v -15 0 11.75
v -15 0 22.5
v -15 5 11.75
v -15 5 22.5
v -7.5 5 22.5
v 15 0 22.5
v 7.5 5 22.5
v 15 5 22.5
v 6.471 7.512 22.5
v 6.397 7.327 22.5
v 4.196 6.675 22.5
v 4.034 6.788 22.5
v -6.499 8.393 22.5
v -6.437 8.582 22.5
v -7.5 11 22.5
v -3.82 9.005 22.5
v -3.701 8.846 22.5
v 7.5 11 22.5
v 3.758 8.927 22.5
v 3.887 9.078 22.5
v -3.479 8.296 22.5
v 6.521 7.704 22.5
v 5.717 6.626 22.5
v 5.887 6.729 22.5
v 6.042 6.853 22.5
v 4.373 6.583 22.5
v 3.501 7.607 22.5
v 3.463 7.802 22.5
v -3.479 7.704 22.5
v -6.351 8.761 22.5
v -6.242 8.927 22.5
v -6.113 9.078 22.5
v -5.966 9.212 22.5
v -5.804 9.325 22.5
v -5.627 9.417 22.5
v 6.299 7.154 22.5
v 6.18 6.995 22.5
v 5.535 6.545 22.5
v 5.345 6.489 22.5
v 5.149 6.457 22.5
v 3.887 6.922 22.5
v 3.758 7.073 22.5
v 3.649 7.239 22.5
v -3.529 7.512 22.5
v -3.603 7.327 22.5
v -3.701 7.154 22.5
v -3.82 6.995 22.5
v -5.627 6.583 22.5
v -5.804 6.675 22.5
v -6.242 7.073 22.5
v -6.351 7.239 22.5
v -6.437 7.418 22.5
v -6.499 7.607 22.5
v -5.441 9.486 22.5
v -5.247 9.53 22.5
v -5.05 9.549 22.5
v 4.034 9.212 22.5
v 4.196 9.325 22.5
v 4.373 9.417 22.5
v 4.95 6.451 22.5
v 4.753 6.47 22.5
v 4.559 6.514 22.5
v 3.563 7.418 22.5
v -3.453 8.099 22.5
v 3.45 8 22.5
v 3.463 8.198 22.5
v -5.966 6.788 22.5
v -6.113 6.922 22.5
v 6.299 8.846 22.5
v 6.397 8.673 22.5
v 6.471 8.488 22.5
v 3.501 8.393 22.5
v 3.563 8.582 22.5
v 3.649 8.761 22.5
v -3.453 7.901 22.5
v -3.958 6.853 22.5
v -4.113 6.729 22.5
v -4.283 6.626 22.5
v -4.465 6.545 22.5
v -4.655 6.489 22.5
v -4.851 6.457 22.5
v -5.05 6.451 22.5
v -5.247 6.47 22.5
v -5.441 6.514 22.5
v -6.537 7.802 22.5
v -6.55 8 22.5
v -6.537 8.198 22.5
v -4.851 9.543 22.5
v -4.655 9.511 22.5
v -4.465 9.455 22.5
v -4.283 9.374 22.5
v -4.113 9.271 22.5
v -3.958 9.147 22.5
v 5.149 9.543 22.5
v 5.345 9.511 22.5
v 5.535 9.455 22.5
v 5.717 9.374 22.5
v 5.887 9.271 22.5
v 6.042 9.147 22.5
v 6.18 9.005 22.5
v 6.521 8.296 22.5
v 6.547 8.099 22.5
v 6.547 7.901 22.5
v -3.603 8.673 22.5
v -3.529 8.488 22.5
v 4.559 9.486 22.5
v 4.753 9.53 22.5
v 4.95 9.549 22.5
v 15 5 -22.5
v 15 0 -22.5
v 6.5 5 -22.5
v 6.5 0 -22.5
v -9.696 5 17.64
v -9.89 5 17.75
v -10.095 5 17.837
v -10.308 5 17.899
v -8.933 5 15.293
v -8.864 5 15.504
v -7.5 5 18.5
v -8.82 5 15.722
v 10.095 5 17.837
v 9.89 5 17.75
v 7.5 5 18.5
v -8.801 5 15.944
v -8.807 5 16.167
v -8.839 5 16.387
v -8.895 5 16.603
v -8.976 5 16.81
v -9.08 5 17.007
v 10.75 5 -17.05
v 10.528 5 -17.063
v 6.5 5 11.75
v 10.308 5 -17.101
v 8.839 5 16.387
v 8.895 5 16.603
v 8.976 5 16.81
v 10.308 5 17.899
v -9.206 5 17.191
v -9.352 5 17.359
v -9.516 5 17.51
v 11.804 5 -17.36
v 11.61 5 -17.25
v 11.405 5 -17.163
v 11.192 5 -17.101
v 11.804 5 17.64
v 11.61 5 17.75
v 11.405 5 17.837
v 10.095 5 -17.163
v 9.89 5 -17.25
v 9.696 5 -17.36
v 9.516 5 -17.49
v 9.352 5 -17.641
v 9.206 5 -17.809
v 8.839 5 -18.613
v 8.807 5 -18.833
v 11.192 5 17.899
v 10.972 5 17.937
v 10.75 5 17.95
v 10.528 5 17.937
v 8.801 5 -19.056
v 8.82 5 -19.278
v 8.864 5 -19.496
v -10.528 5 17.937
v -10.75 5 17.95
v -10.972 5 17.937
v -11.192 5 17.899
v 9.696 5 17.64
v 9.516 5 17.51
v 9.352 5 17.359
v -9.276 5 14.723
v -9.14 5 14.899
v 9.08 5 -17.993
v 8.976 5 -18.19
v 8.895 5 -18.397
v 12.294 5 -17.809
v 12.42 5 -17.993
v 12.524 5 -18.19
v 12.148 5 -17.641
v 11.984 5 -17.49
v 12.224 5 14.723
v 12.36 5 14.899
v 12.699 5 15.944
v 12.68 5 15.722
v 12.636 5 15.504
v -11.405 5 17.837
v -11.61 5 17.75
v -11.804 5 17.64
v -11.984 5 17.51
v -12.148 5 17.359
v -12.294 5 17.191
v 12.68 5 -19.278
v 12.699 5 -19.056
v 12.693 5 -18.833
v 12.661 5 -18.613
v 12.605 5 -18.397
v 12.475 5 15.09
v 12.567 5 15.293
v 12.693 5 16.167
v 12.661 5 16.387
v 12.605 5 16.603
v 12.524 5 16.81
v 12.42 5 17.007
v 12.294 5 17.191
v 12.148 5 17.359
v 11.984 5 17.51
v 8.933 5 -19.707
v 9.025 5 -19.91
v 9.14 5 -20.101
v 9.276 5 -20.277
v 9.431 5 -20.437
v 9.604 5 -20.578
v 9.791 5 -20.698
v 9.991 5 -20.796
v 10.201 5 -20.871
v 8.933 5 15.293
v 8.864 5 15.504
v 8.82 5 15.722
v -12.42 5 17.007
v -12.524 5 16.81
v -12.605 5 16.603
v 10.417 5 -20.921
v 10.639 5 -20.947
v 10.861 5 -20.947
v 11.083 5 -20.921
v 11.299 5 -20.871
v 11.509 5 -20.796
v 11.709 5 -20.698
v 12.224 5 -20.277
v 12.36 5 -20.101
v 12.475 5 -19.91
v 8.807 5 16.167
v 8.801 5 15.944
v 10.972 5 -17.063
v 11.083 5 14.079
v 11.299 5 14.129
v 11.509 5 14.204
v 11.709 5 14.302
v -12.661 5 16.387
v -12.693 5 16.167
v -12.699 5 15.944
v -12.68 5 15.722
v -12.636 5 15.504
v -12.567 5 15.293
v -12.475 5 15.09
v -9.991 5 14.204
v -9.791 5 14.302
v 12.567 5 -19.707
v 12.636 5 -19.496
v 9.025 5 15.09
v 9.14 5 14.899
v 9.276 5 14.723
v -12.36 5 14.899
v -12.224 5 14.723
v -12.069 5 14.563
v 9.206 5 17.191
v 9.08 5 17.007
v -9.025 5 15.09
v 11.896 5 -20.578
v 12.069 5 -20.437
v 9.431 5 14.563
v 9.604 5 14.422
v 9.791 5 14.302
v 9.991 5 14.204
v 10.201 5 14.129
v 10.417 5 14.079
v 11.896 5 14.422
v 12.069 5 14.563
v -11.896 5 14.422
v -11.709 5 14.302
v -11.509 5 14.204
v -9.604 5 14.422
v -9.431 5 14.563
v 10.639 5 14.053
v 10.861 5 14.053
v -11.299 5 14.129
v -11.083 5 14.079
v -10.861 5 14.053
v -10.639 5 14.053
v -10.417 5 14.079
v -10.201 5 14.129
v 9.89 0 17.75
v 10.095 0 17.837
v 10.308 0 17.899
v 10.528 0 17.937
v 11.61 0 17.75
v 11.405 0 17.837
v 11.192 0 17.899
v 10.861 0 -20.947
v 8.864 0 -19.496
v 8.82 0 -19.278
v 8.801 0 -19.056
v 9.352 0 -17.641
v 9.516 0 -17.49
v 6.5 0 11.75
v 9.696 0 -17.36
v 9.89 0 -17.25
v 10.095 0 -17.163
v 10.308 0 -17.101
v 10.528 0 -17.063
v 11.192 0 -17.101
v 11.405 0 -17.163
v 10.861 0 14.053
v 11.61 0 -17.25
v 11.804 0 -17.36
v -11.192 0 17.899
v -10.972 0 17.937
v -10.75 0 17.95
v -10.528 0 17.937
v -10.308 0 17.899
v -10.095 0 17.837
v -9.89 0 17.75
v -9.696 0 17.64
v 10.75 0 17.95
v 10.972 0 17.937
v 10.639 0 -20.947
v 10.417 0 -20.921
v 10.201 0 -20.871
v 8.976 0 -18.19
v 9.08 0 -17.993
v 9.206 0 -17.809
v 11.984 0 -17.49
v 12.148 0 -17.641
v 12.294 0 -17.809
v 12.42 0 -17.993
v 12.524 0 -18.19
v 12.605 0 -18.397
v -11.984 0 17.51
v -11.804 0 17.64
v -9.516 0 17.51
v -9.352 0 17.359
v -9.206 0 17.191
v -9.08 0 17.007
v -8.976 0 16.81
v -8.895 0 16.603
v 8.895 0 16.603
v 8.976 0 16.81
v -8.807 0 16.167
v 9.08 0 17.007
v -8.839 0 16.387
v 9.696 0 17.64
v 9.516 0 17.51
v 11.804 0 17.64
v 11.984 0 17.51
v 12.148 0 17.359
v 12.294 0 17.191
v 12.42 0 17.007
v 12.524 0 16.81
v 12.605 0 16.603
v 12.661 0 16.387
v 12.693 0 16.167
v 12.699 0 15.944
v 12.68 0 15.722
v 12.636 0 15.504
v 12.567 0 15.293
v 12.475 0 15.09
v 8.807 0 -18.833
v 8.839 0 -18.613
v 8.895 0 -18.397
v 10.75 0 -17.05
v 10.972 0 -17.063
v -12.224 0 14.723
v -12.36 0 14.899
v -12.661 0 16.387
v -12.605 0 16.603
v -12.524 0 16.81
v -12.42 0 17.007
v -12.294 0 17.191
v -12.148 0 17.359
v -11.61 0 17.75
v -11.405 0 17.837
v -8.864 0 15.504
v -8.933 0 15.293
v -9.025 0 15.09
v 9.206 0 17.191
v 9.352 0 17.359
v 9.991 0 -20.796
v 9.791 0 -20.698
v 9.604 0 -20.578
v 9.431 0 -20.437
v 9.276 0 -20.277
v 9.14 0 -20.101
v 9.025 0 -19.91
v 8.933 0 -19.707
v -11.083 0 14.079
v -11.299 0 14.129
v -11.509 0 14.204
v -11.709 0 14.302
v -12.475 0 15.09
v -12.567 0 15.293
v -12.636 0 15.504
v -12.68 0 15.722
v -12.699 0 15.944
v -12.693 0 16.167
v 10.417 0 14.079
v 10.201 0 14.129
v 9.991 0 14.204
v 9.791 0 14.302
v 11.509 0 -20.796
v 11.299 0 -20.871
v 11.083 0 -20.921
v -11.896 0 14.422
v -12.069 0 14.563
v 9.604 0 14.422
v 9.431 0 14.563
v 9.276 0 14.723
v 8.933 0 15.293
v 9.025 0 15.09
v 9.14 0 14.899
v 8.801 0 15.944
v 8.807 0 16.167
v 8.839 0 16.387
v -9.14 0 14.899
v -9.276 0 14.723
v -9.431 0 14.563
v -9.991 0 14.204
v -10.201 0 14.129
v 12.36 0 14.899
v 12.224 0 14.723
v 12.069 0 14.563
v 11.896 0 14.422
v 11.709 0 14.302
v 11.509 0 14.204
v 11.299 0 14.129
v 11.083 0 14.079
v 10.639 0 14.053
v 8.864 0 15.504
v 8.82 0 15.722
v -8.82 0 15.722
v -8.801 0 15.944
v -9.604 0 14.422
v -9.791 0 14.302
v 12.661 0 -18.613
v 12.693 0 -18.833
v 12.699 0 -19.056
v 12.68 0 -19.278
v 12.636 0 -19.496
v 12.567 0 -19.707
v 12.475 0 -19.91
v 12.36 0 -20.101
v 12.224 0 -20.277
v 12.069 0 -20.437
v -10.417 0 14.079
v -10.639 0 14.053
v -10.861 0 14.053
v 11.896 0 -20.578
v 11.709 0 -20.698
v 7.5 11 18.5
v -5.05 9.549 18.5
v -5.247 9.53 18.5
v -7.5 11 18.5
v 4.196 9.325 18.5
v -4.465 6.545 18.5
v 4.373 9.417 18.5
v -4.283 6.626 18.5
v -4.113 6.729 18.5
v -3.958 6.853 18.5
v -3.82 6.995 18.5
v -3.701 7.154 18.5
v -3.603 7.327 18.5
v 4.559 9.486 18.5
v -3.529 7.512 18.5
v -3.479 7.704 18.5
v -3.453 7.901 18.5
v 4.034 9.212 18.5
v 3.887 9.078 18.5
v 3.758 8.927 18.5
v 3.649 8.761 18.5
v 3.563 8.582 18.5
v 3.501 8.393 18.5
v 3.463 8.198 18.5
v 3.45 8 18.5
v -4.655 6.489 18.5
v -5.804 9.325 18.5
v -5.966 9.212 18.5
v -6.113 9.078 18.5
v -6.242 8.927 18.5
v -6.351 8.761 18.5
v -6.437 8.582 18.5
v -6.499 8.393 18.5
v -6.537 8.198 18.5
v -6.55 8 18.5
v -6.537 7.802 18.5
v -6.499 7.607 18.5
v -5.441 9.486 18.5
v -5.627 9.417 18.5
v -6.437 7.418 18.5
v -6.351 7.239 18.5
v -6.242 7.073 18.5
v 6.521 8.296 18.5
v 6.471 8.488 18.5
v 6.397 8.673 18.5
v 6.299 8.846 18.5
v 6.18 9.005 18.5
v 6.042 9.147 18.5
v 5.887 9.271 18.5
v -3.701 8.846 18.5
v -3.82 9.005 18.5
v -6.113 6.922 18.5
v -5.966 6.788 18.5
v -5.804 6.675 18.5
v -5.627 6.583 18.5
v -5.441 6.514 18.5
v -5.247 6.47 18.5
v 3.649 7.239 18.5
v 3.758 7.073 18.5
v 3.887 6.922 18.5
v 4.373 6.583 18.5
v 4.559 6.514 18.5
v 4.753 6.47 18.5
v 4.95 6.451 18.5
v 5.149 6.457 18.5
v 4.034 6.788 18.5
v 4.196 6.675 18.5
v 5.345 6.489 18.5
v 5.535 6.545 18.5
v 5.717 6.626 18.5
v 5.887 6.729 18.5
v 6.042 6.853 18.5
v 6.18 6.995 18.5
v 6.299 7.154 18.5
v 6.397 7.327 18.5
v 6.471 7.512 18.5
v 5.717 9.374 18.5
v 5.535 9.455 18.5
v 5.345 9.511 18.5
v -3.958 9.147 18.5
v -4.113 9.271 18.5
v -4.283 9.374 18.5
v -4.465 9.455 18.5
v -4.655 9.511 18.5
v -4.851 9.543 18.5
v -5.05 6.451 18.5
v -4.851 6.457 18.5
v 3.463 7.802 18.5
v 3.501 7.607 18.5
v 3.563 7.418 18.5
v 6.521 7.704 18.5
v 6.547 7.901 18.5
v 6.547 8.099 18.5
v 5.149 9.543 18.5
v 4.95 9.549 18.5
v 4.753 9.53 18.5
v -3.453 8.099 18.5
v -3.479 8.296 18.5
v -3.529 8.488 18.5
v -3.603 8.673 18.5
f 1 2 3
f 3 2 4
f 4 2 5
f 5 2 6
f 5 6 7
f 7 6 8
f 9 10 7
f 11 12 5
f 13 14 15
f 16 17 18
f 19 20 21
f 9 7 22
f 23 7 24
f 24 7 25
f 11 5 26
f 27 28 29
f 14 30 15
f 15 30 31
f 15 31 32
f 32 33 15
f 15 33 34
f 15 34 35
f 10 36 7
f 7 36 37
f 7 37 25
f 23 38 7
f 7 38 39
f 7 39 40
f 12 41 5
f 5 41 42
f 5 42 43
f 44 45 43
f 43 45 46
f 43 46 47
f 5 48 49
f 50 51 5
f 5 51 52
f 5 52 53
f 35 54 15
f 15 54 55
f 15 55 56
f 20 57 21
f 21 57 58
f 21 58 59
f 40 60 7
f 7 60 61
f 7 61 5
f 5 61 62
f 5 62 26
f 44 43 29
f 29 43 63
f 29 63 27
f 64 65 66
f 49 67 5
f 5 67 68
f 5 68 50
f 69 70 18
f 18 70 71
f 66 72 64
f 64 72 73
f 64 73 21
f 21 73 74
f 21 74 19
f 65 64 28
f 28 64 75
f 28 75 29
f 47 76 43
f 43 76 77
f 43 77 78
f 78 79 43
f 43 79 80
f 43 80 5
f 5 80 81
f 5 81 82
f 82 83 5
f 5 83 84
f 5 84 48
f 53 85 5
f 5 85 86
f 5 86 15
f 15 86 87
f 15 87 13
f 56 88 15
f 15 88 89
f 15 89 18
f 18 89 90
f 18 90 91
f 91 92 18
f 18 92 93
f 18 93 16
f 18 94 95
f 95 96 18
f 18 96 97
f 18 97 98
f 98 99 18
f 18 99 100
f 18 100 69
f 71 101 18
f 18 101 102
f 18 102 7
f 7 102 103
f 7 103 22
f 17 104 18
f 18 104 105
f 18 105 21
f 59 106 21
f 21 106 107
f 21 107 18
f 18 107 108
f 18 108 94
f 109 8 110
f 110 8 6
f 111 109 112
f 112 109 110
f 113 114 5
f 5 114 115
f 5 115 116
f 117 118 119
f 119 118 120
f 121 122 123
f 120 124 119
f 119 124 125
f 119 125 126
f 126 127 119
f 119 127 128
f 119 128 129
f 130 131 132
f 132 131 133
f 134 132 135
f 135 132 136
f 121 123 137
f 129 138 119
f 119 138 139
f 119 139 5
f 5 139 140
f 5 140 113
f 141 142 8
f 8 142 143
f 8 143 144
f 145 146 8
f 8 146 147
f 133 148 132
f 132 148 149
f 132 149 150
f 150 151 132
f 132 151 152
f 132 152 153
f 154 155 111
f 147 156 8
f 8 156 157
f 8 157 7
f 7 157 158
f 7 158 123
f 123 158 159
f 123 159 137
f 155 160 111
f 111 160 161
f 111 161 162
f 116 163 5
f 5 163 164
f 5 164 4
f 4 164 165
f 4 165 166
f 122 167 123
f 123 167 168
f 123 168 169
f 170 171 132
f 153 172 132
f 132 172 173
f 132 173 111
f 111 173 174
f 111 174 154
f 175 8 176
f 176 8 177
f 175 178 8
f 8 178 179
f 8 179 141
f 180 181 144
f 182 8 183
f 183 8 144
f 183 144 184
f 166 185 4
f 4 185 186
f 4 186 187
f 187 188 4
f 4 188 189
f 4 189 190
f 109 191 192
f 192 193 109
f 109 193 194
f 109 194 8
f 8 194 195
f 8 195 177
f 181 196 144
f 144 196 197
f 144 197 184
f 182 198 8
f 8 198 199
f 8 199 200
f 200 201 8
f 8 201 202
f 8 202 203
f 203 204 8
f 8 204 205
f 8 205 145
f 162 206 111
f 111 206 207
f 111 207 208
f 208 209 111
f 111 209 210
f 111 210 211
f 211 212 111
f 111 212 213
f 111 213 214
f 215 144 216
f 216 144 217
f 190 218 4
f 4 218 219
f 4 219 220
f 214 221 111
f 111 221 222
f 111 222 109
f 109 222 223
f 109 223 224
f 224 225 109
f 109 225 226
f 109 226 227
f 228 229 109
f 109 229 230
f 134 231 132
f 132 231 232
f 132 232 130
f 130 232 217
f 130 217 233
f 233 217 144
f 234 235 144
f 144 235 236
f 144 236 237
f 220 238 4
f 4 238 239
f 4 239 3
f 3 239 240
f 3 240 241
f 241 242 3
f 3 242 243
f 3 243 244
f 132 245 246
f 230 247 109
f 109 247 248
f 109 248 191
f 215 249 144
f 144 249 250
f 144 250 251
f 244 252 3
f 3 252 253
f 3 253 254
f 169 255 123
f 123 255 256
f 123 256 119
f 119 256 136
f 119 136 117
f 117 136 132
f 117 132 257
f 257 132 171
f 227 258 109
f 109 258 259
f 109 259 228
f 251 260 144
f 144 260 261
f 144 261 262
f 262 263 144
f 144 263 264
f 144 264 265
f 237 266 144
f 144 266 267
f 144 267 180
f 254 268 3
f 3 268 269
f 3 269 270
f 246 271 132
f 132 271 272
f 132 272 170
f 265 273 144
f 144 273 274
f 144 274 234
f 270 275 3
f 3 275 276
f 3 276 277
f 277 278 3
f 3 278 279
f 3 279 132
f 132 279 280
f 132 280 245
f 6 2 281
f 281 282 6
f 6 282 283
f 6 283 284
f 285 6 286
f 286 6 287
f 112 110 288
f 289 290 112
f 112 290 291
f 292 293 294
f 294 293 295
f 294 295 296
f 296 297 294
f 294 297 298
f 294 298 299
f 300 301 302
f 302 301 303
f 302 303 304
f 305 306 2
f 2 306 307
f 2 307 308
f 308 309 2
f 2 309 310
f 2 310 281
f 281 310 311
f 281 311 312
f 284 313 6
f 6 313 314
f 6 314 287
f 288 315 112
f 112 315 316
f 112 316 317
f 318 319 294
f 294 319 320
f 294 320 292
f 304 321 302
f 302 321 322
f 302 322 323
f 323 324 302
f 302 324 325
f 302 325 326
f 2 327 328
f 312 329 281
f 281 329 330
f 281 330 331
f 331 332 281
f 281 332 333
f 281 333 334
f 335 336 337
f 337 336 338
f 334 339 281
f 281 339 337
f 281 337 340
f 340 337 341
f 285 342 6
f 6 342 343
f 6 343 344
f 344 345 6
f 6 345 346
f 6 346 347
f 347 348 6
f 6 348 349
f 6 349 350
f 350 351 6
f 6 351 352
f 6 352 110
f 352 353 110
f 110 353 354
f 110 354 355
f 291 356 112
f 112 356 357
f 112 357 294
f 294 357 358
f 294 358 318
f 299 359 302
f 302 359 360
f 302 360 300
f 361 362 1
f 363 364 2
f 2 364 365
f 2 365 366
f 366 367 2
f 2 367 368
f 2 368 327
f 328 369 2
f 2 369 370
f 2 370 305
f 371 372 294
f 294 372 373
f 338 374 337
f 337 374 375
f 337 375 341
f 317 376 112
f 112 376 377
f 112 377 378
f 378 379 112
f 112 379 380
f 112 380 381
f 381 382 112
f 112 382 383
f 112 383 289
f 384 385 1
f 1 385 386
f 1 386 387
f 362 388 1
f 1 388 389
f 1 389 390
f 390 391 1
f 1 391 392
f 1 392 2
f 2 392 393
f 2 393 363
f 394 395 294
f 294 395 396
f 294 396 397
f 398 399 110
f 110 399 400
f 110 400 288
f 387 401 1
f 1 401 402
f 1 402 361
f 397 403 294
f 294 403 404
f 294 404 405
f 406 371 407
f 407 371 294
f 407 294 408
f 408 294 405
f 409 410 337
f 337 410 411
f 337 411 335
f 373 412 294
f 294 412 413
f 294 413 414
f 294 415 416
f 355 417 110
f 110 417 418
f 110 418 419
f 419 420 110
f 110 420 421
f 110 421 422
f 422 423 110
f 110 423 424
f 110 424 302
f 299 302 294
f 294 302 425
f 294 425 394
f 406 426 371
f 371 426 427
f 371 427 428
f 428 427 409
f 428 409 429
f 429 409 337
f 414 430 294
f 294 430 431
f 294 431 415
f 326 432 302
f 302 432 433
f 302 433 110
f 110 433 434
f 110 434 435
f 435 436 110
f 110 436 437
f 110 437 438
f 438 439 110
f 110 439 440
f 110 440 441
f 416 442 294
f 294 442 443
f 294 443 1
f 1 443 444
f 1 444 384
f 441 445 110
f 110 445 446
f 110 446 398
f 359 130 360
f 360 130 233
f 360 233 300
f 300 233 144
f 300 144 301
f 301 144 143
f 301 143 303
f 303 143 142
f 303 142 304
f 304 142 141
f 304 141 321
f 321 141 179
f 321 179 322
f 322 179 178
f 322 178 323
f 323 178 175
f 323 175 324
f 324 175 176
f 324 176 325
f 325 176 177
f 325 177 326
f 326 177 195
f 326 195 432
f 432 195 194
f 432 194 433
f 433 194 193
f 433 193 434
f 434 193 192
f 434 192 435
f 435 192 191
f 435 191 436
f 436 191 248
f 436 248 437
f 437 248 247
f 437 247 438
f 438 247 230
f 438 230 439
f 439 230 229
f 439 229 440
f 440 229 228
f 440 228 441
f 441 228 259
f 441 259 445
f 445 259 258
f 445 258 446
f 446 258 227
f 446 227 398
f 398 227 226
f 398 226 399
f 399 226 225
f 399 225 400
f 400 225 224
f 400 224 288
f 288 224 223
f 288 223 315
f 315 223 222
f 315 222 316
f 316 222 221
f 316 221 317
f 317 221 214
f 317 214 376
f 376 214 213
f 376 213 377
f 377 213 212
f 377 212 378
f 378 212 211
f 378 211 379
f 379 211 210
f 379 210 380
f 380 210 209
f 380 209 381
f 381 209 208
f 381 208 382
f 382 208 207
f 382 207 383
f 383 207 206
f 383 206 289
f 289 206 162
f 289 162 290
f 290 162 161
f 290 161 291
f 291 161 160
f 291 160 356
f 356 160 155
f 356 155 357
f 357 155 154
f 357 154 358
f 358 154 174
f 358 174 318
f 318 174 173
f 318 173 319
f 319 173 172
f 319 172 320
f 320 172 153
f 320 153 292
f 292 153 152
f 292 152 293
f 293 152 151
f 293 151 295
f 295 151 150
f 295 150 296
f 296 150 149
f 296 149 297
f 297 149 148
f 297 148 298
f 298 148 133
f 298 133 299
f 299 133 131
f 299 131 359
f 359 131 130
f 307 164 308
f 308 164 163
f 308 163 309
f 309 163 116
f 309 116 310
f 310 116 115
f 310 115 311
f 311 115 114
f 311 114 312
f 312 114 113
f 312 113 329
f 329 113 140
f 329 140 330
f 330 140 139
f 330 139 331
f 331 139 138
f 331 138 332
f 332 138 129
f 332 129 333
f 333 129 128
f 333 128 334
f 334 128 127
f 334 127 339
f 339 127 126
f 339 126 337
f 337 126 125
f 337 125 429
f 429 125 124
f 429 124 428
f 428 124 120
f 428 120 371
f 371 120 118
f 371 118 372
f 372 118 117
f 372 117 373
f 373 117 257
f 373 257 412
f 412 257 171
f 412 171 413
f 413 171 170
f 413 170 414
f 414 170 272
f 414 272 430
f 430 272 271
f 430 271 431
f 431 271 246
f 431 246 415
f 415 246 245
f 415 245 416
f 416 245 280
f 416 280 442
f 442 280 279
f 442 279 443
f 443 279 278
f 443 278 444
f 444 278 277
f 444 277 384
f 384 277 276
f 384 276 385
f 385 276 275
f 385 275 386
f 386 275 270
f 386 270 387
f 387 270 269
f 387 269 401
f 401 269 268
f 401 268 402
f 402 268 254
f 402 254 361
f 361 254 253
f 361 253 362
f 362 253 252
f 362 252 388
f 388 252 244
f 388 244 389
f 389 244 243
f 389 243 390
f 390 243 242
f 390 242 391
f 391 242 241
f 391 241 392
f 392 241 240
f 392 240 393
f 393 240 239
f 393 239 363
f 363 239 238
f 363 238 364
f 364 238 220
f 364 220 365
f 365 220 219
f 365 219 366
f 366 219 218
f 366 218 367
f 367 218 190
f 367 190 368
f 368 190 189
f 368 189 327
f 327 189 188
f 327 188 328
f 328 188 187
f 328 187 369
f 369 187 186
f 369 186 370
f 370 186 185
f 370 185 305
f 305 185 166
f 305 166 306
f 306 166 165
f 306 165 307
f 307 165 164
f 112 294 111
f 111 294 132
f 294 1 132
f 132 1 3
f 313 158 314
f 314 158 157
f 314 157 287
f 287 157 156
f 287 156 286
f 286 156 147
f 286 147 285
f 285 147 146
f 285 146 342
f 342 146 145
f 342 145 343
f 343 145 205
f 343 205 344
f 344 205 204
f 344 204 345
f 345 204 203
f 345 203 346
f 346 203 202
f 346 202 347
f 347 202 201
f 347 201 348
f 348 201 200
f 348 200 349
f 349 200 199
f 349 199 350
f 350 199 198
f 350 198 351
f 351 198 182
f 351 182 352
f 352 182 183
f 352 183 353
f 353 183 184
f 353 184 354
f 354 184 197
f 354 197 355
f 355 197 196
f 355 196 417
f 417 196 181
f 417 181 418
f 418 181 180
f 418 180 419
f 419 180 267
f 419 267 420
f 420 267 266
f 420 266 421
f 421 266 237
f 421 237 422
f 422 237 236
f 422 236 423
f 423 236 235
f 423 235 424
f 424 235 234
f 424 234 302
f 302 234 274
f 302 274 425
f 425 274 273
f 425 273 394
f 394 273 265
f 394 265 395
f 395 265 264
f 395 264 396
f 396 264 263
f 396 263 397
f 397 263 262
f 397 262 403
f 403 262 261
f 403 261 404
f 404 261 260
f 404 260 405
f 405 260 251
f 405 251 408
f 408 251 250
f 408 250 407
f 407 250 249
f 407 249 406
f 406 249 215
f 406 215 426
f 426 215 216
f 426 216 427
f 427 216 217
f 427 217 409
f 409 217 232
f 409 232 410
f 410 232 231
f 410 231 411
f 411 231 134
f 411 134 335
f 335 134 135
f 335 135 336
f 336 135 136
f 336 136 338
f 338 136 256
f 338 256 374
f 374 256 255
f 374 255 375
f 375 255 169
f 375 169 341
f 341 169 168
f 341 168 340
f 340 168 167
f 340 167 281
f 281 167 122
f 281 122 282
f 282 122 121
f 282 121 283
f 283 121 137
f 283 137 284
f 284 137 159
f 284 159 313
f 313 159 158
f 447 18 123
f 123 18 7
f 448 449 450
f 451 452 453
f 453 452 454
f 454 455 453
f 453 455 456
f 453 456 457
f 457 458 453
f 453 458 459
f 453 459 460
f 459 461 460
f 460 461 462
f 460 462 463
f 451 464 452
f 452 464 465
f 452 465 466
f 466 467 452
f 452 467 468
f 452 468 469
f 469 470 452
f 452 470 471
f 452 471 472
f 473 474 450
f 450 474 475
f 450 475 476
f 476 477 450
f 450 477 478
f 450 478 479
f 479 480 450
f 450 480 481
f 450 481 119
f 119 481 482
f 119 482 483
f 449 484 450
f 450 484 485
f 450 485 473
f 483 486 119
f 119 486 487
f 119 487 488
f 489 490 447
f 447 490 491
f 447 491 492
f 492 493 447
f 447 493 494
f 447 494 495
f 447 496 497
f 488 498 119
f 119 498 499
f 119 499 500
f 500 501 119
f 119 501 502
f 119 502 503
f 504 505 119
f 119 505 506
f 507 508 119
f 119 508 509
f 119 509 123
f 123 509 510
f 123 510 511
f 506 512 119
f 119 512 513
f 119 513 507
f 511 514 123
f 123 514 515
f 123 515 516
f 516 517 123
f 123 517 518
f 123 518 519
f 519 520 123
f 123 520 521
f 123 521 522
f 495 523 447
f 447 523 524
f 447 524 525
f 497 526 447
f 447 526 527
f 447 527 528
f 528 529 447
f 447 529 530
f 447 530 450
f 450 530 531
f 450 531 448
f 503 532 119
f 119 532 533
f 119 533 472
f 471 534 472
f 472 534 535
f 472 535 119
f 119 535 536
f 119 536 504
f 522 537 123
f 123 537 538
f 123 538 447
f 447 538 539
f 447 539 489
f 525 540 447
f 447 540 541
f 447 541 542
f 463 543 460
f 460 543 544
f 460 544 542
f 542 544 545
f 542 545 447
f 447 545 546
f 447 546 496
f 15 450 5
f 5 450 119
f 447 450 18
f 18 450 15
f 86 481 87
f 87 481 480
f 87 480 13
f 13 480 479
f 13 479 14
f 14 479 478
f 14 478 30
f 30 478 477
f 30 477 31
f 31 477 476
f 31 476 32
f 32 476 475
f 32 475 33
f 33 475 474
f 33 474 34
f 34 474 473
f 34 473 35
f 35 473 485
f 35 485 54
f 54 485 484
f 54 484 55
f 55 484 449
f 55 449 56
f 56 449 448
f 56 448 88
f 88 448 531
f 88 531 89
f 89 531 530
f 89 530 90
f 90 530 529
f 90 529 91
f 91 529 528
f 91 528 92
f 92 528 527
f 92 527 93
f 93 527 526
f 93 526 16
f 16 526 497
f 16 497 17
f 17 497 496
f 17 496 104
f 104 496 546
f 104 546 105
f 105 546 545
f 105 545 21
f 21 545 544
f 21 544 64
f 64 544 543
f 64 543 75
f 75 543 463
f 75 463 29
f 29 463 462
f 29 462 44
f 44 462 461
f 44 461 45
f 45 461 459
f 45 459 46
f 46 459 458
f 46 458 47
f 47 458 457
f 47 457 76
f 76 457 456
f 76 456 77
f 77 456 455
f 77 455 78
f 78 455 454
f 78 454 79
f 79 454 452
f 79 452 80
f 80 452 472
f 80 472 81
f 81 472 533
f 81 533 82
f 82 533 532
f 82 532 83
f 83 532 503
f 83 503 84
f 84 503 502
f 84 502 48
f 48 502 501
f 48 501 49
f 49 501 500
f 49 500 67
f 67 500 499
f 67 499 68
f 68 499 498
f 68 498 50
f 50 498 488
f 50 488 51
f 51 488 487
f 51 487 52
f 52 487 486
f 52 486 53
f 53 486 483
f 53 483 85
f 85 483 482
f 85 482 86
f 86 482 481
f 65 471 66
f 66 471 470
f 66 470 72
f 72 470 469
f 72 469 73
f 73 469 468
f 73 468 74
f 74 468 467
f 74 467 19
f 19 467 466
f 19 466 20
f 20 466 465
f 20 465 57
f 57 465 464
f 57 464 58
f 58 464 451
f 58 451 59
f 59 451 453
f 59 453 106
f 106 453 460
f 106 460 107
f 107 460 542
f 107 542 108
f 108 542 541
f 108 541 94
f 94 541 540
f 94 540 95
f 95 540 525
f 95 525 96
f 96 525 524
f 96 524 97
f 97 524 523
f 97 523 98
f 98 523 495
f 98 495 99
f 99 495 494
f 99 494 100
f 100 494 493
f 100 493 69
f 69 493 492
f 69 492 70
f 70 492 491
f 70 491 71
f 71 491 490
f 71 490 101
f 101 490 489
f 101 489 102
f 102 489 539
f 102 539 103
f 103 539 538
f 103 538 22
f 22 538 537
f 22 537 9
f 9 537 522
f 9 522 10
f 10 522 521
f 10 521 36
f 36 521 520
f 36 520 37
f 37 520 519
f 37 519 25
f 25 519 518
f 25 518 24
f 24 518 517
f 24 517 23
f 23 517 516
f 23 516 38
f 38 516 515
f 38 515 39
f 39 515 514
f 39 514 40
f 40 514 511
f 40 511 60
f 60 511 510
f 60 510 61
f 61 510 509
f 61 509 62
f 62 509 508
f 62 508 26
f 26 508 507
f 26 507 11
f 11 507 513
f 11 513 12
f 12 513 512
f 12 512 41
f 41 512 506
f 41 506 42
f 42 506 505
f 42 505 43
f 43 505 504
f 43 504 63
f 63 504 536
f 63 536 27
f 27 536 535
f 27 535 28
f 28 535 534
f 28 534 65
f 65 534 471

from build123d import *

# Parameters (mm, degrees)
SKETCH1_W           = 30
SKETCH1_H           = 45
BOSS_EXTRUDE1_DEPTH = 5
SKETCH2_R           = 1.95
SKETCH2_W           = 21.5
SKETCH2_H           = 34.25
CUT_EXTRUDE1_DEPTH  = 6
SKETCH3_W           = 15
SKETCH3_H           = 4
BOSS_EXTRUDE2_DEPTH = 6
SKETCH4_R           = 1.55
CUT_EXTRUDE2_DEPTH  = 5


with BuildPart() as part:
    # Sketch1 → Boss-Extrude1 (new body)
    with BuildSketch(Plane(origin=(0, 0, 0), x_dir=(1, 0, 0), z_dir=(0, 1, 0))):
        Rectangle(SKETCH1_W, SKETCH1_H)
    extrude(amount=BOSS_EXTRUDE1_DEPTH)

    # Sketch2 → Cut-Extrude1 (cut, through all)
    with BuildSketch(Plane(origin=(0, 5, 0), x_dir=(1, 0, 0), z_dir=(0, 1, 0))):
        with Locations((10.75, 19)):
            Circle(SKETCH2_R)
        with Locations((10.75, -16)):
            Circle(SKETCH2_R)
        with Locations((-10.75, -16)):
            Circle(SKETCH2_R)
        with Locations((-4.25, 5.375)):
            Rectangle(SKETCH2_W, SKETCH2_H)
    extrude(amount=-CUT_EXTRUDE1_DEPTH, mode=Mode.SUBTRACT)

    # Sketch3 → Boss-Extrude2 (add)
    with BuildSketch(Plane(origin=(0, 5, 0), x_dir=(1, 0, 0), z_dir=(0, 1, 0))):
        with Locations((0, -20.5)):
            Rectangle(SKETCH3_W, SKETCH3_H)
    extrude(amount=BOSS_EXTRUDE2_DEPTH)

    # Sketch4 → Cut-Extrude2 (cut, through all)
    with BuildSketch(Plane(origin=(0, 0, 18.5), x_dir=(-1, 0, 0), z_dir=(0, 0, -1))):
        with Locations((-5, 8)):
            Circle(SKETCH4_R)
        with Locations((5, 8)):
            Circle(SKETCH4_R)
    extrude(amount=-CUT_EXTRUDE2_DEPTH, mode=Mode.SUBTRACT)


solid = part.part
